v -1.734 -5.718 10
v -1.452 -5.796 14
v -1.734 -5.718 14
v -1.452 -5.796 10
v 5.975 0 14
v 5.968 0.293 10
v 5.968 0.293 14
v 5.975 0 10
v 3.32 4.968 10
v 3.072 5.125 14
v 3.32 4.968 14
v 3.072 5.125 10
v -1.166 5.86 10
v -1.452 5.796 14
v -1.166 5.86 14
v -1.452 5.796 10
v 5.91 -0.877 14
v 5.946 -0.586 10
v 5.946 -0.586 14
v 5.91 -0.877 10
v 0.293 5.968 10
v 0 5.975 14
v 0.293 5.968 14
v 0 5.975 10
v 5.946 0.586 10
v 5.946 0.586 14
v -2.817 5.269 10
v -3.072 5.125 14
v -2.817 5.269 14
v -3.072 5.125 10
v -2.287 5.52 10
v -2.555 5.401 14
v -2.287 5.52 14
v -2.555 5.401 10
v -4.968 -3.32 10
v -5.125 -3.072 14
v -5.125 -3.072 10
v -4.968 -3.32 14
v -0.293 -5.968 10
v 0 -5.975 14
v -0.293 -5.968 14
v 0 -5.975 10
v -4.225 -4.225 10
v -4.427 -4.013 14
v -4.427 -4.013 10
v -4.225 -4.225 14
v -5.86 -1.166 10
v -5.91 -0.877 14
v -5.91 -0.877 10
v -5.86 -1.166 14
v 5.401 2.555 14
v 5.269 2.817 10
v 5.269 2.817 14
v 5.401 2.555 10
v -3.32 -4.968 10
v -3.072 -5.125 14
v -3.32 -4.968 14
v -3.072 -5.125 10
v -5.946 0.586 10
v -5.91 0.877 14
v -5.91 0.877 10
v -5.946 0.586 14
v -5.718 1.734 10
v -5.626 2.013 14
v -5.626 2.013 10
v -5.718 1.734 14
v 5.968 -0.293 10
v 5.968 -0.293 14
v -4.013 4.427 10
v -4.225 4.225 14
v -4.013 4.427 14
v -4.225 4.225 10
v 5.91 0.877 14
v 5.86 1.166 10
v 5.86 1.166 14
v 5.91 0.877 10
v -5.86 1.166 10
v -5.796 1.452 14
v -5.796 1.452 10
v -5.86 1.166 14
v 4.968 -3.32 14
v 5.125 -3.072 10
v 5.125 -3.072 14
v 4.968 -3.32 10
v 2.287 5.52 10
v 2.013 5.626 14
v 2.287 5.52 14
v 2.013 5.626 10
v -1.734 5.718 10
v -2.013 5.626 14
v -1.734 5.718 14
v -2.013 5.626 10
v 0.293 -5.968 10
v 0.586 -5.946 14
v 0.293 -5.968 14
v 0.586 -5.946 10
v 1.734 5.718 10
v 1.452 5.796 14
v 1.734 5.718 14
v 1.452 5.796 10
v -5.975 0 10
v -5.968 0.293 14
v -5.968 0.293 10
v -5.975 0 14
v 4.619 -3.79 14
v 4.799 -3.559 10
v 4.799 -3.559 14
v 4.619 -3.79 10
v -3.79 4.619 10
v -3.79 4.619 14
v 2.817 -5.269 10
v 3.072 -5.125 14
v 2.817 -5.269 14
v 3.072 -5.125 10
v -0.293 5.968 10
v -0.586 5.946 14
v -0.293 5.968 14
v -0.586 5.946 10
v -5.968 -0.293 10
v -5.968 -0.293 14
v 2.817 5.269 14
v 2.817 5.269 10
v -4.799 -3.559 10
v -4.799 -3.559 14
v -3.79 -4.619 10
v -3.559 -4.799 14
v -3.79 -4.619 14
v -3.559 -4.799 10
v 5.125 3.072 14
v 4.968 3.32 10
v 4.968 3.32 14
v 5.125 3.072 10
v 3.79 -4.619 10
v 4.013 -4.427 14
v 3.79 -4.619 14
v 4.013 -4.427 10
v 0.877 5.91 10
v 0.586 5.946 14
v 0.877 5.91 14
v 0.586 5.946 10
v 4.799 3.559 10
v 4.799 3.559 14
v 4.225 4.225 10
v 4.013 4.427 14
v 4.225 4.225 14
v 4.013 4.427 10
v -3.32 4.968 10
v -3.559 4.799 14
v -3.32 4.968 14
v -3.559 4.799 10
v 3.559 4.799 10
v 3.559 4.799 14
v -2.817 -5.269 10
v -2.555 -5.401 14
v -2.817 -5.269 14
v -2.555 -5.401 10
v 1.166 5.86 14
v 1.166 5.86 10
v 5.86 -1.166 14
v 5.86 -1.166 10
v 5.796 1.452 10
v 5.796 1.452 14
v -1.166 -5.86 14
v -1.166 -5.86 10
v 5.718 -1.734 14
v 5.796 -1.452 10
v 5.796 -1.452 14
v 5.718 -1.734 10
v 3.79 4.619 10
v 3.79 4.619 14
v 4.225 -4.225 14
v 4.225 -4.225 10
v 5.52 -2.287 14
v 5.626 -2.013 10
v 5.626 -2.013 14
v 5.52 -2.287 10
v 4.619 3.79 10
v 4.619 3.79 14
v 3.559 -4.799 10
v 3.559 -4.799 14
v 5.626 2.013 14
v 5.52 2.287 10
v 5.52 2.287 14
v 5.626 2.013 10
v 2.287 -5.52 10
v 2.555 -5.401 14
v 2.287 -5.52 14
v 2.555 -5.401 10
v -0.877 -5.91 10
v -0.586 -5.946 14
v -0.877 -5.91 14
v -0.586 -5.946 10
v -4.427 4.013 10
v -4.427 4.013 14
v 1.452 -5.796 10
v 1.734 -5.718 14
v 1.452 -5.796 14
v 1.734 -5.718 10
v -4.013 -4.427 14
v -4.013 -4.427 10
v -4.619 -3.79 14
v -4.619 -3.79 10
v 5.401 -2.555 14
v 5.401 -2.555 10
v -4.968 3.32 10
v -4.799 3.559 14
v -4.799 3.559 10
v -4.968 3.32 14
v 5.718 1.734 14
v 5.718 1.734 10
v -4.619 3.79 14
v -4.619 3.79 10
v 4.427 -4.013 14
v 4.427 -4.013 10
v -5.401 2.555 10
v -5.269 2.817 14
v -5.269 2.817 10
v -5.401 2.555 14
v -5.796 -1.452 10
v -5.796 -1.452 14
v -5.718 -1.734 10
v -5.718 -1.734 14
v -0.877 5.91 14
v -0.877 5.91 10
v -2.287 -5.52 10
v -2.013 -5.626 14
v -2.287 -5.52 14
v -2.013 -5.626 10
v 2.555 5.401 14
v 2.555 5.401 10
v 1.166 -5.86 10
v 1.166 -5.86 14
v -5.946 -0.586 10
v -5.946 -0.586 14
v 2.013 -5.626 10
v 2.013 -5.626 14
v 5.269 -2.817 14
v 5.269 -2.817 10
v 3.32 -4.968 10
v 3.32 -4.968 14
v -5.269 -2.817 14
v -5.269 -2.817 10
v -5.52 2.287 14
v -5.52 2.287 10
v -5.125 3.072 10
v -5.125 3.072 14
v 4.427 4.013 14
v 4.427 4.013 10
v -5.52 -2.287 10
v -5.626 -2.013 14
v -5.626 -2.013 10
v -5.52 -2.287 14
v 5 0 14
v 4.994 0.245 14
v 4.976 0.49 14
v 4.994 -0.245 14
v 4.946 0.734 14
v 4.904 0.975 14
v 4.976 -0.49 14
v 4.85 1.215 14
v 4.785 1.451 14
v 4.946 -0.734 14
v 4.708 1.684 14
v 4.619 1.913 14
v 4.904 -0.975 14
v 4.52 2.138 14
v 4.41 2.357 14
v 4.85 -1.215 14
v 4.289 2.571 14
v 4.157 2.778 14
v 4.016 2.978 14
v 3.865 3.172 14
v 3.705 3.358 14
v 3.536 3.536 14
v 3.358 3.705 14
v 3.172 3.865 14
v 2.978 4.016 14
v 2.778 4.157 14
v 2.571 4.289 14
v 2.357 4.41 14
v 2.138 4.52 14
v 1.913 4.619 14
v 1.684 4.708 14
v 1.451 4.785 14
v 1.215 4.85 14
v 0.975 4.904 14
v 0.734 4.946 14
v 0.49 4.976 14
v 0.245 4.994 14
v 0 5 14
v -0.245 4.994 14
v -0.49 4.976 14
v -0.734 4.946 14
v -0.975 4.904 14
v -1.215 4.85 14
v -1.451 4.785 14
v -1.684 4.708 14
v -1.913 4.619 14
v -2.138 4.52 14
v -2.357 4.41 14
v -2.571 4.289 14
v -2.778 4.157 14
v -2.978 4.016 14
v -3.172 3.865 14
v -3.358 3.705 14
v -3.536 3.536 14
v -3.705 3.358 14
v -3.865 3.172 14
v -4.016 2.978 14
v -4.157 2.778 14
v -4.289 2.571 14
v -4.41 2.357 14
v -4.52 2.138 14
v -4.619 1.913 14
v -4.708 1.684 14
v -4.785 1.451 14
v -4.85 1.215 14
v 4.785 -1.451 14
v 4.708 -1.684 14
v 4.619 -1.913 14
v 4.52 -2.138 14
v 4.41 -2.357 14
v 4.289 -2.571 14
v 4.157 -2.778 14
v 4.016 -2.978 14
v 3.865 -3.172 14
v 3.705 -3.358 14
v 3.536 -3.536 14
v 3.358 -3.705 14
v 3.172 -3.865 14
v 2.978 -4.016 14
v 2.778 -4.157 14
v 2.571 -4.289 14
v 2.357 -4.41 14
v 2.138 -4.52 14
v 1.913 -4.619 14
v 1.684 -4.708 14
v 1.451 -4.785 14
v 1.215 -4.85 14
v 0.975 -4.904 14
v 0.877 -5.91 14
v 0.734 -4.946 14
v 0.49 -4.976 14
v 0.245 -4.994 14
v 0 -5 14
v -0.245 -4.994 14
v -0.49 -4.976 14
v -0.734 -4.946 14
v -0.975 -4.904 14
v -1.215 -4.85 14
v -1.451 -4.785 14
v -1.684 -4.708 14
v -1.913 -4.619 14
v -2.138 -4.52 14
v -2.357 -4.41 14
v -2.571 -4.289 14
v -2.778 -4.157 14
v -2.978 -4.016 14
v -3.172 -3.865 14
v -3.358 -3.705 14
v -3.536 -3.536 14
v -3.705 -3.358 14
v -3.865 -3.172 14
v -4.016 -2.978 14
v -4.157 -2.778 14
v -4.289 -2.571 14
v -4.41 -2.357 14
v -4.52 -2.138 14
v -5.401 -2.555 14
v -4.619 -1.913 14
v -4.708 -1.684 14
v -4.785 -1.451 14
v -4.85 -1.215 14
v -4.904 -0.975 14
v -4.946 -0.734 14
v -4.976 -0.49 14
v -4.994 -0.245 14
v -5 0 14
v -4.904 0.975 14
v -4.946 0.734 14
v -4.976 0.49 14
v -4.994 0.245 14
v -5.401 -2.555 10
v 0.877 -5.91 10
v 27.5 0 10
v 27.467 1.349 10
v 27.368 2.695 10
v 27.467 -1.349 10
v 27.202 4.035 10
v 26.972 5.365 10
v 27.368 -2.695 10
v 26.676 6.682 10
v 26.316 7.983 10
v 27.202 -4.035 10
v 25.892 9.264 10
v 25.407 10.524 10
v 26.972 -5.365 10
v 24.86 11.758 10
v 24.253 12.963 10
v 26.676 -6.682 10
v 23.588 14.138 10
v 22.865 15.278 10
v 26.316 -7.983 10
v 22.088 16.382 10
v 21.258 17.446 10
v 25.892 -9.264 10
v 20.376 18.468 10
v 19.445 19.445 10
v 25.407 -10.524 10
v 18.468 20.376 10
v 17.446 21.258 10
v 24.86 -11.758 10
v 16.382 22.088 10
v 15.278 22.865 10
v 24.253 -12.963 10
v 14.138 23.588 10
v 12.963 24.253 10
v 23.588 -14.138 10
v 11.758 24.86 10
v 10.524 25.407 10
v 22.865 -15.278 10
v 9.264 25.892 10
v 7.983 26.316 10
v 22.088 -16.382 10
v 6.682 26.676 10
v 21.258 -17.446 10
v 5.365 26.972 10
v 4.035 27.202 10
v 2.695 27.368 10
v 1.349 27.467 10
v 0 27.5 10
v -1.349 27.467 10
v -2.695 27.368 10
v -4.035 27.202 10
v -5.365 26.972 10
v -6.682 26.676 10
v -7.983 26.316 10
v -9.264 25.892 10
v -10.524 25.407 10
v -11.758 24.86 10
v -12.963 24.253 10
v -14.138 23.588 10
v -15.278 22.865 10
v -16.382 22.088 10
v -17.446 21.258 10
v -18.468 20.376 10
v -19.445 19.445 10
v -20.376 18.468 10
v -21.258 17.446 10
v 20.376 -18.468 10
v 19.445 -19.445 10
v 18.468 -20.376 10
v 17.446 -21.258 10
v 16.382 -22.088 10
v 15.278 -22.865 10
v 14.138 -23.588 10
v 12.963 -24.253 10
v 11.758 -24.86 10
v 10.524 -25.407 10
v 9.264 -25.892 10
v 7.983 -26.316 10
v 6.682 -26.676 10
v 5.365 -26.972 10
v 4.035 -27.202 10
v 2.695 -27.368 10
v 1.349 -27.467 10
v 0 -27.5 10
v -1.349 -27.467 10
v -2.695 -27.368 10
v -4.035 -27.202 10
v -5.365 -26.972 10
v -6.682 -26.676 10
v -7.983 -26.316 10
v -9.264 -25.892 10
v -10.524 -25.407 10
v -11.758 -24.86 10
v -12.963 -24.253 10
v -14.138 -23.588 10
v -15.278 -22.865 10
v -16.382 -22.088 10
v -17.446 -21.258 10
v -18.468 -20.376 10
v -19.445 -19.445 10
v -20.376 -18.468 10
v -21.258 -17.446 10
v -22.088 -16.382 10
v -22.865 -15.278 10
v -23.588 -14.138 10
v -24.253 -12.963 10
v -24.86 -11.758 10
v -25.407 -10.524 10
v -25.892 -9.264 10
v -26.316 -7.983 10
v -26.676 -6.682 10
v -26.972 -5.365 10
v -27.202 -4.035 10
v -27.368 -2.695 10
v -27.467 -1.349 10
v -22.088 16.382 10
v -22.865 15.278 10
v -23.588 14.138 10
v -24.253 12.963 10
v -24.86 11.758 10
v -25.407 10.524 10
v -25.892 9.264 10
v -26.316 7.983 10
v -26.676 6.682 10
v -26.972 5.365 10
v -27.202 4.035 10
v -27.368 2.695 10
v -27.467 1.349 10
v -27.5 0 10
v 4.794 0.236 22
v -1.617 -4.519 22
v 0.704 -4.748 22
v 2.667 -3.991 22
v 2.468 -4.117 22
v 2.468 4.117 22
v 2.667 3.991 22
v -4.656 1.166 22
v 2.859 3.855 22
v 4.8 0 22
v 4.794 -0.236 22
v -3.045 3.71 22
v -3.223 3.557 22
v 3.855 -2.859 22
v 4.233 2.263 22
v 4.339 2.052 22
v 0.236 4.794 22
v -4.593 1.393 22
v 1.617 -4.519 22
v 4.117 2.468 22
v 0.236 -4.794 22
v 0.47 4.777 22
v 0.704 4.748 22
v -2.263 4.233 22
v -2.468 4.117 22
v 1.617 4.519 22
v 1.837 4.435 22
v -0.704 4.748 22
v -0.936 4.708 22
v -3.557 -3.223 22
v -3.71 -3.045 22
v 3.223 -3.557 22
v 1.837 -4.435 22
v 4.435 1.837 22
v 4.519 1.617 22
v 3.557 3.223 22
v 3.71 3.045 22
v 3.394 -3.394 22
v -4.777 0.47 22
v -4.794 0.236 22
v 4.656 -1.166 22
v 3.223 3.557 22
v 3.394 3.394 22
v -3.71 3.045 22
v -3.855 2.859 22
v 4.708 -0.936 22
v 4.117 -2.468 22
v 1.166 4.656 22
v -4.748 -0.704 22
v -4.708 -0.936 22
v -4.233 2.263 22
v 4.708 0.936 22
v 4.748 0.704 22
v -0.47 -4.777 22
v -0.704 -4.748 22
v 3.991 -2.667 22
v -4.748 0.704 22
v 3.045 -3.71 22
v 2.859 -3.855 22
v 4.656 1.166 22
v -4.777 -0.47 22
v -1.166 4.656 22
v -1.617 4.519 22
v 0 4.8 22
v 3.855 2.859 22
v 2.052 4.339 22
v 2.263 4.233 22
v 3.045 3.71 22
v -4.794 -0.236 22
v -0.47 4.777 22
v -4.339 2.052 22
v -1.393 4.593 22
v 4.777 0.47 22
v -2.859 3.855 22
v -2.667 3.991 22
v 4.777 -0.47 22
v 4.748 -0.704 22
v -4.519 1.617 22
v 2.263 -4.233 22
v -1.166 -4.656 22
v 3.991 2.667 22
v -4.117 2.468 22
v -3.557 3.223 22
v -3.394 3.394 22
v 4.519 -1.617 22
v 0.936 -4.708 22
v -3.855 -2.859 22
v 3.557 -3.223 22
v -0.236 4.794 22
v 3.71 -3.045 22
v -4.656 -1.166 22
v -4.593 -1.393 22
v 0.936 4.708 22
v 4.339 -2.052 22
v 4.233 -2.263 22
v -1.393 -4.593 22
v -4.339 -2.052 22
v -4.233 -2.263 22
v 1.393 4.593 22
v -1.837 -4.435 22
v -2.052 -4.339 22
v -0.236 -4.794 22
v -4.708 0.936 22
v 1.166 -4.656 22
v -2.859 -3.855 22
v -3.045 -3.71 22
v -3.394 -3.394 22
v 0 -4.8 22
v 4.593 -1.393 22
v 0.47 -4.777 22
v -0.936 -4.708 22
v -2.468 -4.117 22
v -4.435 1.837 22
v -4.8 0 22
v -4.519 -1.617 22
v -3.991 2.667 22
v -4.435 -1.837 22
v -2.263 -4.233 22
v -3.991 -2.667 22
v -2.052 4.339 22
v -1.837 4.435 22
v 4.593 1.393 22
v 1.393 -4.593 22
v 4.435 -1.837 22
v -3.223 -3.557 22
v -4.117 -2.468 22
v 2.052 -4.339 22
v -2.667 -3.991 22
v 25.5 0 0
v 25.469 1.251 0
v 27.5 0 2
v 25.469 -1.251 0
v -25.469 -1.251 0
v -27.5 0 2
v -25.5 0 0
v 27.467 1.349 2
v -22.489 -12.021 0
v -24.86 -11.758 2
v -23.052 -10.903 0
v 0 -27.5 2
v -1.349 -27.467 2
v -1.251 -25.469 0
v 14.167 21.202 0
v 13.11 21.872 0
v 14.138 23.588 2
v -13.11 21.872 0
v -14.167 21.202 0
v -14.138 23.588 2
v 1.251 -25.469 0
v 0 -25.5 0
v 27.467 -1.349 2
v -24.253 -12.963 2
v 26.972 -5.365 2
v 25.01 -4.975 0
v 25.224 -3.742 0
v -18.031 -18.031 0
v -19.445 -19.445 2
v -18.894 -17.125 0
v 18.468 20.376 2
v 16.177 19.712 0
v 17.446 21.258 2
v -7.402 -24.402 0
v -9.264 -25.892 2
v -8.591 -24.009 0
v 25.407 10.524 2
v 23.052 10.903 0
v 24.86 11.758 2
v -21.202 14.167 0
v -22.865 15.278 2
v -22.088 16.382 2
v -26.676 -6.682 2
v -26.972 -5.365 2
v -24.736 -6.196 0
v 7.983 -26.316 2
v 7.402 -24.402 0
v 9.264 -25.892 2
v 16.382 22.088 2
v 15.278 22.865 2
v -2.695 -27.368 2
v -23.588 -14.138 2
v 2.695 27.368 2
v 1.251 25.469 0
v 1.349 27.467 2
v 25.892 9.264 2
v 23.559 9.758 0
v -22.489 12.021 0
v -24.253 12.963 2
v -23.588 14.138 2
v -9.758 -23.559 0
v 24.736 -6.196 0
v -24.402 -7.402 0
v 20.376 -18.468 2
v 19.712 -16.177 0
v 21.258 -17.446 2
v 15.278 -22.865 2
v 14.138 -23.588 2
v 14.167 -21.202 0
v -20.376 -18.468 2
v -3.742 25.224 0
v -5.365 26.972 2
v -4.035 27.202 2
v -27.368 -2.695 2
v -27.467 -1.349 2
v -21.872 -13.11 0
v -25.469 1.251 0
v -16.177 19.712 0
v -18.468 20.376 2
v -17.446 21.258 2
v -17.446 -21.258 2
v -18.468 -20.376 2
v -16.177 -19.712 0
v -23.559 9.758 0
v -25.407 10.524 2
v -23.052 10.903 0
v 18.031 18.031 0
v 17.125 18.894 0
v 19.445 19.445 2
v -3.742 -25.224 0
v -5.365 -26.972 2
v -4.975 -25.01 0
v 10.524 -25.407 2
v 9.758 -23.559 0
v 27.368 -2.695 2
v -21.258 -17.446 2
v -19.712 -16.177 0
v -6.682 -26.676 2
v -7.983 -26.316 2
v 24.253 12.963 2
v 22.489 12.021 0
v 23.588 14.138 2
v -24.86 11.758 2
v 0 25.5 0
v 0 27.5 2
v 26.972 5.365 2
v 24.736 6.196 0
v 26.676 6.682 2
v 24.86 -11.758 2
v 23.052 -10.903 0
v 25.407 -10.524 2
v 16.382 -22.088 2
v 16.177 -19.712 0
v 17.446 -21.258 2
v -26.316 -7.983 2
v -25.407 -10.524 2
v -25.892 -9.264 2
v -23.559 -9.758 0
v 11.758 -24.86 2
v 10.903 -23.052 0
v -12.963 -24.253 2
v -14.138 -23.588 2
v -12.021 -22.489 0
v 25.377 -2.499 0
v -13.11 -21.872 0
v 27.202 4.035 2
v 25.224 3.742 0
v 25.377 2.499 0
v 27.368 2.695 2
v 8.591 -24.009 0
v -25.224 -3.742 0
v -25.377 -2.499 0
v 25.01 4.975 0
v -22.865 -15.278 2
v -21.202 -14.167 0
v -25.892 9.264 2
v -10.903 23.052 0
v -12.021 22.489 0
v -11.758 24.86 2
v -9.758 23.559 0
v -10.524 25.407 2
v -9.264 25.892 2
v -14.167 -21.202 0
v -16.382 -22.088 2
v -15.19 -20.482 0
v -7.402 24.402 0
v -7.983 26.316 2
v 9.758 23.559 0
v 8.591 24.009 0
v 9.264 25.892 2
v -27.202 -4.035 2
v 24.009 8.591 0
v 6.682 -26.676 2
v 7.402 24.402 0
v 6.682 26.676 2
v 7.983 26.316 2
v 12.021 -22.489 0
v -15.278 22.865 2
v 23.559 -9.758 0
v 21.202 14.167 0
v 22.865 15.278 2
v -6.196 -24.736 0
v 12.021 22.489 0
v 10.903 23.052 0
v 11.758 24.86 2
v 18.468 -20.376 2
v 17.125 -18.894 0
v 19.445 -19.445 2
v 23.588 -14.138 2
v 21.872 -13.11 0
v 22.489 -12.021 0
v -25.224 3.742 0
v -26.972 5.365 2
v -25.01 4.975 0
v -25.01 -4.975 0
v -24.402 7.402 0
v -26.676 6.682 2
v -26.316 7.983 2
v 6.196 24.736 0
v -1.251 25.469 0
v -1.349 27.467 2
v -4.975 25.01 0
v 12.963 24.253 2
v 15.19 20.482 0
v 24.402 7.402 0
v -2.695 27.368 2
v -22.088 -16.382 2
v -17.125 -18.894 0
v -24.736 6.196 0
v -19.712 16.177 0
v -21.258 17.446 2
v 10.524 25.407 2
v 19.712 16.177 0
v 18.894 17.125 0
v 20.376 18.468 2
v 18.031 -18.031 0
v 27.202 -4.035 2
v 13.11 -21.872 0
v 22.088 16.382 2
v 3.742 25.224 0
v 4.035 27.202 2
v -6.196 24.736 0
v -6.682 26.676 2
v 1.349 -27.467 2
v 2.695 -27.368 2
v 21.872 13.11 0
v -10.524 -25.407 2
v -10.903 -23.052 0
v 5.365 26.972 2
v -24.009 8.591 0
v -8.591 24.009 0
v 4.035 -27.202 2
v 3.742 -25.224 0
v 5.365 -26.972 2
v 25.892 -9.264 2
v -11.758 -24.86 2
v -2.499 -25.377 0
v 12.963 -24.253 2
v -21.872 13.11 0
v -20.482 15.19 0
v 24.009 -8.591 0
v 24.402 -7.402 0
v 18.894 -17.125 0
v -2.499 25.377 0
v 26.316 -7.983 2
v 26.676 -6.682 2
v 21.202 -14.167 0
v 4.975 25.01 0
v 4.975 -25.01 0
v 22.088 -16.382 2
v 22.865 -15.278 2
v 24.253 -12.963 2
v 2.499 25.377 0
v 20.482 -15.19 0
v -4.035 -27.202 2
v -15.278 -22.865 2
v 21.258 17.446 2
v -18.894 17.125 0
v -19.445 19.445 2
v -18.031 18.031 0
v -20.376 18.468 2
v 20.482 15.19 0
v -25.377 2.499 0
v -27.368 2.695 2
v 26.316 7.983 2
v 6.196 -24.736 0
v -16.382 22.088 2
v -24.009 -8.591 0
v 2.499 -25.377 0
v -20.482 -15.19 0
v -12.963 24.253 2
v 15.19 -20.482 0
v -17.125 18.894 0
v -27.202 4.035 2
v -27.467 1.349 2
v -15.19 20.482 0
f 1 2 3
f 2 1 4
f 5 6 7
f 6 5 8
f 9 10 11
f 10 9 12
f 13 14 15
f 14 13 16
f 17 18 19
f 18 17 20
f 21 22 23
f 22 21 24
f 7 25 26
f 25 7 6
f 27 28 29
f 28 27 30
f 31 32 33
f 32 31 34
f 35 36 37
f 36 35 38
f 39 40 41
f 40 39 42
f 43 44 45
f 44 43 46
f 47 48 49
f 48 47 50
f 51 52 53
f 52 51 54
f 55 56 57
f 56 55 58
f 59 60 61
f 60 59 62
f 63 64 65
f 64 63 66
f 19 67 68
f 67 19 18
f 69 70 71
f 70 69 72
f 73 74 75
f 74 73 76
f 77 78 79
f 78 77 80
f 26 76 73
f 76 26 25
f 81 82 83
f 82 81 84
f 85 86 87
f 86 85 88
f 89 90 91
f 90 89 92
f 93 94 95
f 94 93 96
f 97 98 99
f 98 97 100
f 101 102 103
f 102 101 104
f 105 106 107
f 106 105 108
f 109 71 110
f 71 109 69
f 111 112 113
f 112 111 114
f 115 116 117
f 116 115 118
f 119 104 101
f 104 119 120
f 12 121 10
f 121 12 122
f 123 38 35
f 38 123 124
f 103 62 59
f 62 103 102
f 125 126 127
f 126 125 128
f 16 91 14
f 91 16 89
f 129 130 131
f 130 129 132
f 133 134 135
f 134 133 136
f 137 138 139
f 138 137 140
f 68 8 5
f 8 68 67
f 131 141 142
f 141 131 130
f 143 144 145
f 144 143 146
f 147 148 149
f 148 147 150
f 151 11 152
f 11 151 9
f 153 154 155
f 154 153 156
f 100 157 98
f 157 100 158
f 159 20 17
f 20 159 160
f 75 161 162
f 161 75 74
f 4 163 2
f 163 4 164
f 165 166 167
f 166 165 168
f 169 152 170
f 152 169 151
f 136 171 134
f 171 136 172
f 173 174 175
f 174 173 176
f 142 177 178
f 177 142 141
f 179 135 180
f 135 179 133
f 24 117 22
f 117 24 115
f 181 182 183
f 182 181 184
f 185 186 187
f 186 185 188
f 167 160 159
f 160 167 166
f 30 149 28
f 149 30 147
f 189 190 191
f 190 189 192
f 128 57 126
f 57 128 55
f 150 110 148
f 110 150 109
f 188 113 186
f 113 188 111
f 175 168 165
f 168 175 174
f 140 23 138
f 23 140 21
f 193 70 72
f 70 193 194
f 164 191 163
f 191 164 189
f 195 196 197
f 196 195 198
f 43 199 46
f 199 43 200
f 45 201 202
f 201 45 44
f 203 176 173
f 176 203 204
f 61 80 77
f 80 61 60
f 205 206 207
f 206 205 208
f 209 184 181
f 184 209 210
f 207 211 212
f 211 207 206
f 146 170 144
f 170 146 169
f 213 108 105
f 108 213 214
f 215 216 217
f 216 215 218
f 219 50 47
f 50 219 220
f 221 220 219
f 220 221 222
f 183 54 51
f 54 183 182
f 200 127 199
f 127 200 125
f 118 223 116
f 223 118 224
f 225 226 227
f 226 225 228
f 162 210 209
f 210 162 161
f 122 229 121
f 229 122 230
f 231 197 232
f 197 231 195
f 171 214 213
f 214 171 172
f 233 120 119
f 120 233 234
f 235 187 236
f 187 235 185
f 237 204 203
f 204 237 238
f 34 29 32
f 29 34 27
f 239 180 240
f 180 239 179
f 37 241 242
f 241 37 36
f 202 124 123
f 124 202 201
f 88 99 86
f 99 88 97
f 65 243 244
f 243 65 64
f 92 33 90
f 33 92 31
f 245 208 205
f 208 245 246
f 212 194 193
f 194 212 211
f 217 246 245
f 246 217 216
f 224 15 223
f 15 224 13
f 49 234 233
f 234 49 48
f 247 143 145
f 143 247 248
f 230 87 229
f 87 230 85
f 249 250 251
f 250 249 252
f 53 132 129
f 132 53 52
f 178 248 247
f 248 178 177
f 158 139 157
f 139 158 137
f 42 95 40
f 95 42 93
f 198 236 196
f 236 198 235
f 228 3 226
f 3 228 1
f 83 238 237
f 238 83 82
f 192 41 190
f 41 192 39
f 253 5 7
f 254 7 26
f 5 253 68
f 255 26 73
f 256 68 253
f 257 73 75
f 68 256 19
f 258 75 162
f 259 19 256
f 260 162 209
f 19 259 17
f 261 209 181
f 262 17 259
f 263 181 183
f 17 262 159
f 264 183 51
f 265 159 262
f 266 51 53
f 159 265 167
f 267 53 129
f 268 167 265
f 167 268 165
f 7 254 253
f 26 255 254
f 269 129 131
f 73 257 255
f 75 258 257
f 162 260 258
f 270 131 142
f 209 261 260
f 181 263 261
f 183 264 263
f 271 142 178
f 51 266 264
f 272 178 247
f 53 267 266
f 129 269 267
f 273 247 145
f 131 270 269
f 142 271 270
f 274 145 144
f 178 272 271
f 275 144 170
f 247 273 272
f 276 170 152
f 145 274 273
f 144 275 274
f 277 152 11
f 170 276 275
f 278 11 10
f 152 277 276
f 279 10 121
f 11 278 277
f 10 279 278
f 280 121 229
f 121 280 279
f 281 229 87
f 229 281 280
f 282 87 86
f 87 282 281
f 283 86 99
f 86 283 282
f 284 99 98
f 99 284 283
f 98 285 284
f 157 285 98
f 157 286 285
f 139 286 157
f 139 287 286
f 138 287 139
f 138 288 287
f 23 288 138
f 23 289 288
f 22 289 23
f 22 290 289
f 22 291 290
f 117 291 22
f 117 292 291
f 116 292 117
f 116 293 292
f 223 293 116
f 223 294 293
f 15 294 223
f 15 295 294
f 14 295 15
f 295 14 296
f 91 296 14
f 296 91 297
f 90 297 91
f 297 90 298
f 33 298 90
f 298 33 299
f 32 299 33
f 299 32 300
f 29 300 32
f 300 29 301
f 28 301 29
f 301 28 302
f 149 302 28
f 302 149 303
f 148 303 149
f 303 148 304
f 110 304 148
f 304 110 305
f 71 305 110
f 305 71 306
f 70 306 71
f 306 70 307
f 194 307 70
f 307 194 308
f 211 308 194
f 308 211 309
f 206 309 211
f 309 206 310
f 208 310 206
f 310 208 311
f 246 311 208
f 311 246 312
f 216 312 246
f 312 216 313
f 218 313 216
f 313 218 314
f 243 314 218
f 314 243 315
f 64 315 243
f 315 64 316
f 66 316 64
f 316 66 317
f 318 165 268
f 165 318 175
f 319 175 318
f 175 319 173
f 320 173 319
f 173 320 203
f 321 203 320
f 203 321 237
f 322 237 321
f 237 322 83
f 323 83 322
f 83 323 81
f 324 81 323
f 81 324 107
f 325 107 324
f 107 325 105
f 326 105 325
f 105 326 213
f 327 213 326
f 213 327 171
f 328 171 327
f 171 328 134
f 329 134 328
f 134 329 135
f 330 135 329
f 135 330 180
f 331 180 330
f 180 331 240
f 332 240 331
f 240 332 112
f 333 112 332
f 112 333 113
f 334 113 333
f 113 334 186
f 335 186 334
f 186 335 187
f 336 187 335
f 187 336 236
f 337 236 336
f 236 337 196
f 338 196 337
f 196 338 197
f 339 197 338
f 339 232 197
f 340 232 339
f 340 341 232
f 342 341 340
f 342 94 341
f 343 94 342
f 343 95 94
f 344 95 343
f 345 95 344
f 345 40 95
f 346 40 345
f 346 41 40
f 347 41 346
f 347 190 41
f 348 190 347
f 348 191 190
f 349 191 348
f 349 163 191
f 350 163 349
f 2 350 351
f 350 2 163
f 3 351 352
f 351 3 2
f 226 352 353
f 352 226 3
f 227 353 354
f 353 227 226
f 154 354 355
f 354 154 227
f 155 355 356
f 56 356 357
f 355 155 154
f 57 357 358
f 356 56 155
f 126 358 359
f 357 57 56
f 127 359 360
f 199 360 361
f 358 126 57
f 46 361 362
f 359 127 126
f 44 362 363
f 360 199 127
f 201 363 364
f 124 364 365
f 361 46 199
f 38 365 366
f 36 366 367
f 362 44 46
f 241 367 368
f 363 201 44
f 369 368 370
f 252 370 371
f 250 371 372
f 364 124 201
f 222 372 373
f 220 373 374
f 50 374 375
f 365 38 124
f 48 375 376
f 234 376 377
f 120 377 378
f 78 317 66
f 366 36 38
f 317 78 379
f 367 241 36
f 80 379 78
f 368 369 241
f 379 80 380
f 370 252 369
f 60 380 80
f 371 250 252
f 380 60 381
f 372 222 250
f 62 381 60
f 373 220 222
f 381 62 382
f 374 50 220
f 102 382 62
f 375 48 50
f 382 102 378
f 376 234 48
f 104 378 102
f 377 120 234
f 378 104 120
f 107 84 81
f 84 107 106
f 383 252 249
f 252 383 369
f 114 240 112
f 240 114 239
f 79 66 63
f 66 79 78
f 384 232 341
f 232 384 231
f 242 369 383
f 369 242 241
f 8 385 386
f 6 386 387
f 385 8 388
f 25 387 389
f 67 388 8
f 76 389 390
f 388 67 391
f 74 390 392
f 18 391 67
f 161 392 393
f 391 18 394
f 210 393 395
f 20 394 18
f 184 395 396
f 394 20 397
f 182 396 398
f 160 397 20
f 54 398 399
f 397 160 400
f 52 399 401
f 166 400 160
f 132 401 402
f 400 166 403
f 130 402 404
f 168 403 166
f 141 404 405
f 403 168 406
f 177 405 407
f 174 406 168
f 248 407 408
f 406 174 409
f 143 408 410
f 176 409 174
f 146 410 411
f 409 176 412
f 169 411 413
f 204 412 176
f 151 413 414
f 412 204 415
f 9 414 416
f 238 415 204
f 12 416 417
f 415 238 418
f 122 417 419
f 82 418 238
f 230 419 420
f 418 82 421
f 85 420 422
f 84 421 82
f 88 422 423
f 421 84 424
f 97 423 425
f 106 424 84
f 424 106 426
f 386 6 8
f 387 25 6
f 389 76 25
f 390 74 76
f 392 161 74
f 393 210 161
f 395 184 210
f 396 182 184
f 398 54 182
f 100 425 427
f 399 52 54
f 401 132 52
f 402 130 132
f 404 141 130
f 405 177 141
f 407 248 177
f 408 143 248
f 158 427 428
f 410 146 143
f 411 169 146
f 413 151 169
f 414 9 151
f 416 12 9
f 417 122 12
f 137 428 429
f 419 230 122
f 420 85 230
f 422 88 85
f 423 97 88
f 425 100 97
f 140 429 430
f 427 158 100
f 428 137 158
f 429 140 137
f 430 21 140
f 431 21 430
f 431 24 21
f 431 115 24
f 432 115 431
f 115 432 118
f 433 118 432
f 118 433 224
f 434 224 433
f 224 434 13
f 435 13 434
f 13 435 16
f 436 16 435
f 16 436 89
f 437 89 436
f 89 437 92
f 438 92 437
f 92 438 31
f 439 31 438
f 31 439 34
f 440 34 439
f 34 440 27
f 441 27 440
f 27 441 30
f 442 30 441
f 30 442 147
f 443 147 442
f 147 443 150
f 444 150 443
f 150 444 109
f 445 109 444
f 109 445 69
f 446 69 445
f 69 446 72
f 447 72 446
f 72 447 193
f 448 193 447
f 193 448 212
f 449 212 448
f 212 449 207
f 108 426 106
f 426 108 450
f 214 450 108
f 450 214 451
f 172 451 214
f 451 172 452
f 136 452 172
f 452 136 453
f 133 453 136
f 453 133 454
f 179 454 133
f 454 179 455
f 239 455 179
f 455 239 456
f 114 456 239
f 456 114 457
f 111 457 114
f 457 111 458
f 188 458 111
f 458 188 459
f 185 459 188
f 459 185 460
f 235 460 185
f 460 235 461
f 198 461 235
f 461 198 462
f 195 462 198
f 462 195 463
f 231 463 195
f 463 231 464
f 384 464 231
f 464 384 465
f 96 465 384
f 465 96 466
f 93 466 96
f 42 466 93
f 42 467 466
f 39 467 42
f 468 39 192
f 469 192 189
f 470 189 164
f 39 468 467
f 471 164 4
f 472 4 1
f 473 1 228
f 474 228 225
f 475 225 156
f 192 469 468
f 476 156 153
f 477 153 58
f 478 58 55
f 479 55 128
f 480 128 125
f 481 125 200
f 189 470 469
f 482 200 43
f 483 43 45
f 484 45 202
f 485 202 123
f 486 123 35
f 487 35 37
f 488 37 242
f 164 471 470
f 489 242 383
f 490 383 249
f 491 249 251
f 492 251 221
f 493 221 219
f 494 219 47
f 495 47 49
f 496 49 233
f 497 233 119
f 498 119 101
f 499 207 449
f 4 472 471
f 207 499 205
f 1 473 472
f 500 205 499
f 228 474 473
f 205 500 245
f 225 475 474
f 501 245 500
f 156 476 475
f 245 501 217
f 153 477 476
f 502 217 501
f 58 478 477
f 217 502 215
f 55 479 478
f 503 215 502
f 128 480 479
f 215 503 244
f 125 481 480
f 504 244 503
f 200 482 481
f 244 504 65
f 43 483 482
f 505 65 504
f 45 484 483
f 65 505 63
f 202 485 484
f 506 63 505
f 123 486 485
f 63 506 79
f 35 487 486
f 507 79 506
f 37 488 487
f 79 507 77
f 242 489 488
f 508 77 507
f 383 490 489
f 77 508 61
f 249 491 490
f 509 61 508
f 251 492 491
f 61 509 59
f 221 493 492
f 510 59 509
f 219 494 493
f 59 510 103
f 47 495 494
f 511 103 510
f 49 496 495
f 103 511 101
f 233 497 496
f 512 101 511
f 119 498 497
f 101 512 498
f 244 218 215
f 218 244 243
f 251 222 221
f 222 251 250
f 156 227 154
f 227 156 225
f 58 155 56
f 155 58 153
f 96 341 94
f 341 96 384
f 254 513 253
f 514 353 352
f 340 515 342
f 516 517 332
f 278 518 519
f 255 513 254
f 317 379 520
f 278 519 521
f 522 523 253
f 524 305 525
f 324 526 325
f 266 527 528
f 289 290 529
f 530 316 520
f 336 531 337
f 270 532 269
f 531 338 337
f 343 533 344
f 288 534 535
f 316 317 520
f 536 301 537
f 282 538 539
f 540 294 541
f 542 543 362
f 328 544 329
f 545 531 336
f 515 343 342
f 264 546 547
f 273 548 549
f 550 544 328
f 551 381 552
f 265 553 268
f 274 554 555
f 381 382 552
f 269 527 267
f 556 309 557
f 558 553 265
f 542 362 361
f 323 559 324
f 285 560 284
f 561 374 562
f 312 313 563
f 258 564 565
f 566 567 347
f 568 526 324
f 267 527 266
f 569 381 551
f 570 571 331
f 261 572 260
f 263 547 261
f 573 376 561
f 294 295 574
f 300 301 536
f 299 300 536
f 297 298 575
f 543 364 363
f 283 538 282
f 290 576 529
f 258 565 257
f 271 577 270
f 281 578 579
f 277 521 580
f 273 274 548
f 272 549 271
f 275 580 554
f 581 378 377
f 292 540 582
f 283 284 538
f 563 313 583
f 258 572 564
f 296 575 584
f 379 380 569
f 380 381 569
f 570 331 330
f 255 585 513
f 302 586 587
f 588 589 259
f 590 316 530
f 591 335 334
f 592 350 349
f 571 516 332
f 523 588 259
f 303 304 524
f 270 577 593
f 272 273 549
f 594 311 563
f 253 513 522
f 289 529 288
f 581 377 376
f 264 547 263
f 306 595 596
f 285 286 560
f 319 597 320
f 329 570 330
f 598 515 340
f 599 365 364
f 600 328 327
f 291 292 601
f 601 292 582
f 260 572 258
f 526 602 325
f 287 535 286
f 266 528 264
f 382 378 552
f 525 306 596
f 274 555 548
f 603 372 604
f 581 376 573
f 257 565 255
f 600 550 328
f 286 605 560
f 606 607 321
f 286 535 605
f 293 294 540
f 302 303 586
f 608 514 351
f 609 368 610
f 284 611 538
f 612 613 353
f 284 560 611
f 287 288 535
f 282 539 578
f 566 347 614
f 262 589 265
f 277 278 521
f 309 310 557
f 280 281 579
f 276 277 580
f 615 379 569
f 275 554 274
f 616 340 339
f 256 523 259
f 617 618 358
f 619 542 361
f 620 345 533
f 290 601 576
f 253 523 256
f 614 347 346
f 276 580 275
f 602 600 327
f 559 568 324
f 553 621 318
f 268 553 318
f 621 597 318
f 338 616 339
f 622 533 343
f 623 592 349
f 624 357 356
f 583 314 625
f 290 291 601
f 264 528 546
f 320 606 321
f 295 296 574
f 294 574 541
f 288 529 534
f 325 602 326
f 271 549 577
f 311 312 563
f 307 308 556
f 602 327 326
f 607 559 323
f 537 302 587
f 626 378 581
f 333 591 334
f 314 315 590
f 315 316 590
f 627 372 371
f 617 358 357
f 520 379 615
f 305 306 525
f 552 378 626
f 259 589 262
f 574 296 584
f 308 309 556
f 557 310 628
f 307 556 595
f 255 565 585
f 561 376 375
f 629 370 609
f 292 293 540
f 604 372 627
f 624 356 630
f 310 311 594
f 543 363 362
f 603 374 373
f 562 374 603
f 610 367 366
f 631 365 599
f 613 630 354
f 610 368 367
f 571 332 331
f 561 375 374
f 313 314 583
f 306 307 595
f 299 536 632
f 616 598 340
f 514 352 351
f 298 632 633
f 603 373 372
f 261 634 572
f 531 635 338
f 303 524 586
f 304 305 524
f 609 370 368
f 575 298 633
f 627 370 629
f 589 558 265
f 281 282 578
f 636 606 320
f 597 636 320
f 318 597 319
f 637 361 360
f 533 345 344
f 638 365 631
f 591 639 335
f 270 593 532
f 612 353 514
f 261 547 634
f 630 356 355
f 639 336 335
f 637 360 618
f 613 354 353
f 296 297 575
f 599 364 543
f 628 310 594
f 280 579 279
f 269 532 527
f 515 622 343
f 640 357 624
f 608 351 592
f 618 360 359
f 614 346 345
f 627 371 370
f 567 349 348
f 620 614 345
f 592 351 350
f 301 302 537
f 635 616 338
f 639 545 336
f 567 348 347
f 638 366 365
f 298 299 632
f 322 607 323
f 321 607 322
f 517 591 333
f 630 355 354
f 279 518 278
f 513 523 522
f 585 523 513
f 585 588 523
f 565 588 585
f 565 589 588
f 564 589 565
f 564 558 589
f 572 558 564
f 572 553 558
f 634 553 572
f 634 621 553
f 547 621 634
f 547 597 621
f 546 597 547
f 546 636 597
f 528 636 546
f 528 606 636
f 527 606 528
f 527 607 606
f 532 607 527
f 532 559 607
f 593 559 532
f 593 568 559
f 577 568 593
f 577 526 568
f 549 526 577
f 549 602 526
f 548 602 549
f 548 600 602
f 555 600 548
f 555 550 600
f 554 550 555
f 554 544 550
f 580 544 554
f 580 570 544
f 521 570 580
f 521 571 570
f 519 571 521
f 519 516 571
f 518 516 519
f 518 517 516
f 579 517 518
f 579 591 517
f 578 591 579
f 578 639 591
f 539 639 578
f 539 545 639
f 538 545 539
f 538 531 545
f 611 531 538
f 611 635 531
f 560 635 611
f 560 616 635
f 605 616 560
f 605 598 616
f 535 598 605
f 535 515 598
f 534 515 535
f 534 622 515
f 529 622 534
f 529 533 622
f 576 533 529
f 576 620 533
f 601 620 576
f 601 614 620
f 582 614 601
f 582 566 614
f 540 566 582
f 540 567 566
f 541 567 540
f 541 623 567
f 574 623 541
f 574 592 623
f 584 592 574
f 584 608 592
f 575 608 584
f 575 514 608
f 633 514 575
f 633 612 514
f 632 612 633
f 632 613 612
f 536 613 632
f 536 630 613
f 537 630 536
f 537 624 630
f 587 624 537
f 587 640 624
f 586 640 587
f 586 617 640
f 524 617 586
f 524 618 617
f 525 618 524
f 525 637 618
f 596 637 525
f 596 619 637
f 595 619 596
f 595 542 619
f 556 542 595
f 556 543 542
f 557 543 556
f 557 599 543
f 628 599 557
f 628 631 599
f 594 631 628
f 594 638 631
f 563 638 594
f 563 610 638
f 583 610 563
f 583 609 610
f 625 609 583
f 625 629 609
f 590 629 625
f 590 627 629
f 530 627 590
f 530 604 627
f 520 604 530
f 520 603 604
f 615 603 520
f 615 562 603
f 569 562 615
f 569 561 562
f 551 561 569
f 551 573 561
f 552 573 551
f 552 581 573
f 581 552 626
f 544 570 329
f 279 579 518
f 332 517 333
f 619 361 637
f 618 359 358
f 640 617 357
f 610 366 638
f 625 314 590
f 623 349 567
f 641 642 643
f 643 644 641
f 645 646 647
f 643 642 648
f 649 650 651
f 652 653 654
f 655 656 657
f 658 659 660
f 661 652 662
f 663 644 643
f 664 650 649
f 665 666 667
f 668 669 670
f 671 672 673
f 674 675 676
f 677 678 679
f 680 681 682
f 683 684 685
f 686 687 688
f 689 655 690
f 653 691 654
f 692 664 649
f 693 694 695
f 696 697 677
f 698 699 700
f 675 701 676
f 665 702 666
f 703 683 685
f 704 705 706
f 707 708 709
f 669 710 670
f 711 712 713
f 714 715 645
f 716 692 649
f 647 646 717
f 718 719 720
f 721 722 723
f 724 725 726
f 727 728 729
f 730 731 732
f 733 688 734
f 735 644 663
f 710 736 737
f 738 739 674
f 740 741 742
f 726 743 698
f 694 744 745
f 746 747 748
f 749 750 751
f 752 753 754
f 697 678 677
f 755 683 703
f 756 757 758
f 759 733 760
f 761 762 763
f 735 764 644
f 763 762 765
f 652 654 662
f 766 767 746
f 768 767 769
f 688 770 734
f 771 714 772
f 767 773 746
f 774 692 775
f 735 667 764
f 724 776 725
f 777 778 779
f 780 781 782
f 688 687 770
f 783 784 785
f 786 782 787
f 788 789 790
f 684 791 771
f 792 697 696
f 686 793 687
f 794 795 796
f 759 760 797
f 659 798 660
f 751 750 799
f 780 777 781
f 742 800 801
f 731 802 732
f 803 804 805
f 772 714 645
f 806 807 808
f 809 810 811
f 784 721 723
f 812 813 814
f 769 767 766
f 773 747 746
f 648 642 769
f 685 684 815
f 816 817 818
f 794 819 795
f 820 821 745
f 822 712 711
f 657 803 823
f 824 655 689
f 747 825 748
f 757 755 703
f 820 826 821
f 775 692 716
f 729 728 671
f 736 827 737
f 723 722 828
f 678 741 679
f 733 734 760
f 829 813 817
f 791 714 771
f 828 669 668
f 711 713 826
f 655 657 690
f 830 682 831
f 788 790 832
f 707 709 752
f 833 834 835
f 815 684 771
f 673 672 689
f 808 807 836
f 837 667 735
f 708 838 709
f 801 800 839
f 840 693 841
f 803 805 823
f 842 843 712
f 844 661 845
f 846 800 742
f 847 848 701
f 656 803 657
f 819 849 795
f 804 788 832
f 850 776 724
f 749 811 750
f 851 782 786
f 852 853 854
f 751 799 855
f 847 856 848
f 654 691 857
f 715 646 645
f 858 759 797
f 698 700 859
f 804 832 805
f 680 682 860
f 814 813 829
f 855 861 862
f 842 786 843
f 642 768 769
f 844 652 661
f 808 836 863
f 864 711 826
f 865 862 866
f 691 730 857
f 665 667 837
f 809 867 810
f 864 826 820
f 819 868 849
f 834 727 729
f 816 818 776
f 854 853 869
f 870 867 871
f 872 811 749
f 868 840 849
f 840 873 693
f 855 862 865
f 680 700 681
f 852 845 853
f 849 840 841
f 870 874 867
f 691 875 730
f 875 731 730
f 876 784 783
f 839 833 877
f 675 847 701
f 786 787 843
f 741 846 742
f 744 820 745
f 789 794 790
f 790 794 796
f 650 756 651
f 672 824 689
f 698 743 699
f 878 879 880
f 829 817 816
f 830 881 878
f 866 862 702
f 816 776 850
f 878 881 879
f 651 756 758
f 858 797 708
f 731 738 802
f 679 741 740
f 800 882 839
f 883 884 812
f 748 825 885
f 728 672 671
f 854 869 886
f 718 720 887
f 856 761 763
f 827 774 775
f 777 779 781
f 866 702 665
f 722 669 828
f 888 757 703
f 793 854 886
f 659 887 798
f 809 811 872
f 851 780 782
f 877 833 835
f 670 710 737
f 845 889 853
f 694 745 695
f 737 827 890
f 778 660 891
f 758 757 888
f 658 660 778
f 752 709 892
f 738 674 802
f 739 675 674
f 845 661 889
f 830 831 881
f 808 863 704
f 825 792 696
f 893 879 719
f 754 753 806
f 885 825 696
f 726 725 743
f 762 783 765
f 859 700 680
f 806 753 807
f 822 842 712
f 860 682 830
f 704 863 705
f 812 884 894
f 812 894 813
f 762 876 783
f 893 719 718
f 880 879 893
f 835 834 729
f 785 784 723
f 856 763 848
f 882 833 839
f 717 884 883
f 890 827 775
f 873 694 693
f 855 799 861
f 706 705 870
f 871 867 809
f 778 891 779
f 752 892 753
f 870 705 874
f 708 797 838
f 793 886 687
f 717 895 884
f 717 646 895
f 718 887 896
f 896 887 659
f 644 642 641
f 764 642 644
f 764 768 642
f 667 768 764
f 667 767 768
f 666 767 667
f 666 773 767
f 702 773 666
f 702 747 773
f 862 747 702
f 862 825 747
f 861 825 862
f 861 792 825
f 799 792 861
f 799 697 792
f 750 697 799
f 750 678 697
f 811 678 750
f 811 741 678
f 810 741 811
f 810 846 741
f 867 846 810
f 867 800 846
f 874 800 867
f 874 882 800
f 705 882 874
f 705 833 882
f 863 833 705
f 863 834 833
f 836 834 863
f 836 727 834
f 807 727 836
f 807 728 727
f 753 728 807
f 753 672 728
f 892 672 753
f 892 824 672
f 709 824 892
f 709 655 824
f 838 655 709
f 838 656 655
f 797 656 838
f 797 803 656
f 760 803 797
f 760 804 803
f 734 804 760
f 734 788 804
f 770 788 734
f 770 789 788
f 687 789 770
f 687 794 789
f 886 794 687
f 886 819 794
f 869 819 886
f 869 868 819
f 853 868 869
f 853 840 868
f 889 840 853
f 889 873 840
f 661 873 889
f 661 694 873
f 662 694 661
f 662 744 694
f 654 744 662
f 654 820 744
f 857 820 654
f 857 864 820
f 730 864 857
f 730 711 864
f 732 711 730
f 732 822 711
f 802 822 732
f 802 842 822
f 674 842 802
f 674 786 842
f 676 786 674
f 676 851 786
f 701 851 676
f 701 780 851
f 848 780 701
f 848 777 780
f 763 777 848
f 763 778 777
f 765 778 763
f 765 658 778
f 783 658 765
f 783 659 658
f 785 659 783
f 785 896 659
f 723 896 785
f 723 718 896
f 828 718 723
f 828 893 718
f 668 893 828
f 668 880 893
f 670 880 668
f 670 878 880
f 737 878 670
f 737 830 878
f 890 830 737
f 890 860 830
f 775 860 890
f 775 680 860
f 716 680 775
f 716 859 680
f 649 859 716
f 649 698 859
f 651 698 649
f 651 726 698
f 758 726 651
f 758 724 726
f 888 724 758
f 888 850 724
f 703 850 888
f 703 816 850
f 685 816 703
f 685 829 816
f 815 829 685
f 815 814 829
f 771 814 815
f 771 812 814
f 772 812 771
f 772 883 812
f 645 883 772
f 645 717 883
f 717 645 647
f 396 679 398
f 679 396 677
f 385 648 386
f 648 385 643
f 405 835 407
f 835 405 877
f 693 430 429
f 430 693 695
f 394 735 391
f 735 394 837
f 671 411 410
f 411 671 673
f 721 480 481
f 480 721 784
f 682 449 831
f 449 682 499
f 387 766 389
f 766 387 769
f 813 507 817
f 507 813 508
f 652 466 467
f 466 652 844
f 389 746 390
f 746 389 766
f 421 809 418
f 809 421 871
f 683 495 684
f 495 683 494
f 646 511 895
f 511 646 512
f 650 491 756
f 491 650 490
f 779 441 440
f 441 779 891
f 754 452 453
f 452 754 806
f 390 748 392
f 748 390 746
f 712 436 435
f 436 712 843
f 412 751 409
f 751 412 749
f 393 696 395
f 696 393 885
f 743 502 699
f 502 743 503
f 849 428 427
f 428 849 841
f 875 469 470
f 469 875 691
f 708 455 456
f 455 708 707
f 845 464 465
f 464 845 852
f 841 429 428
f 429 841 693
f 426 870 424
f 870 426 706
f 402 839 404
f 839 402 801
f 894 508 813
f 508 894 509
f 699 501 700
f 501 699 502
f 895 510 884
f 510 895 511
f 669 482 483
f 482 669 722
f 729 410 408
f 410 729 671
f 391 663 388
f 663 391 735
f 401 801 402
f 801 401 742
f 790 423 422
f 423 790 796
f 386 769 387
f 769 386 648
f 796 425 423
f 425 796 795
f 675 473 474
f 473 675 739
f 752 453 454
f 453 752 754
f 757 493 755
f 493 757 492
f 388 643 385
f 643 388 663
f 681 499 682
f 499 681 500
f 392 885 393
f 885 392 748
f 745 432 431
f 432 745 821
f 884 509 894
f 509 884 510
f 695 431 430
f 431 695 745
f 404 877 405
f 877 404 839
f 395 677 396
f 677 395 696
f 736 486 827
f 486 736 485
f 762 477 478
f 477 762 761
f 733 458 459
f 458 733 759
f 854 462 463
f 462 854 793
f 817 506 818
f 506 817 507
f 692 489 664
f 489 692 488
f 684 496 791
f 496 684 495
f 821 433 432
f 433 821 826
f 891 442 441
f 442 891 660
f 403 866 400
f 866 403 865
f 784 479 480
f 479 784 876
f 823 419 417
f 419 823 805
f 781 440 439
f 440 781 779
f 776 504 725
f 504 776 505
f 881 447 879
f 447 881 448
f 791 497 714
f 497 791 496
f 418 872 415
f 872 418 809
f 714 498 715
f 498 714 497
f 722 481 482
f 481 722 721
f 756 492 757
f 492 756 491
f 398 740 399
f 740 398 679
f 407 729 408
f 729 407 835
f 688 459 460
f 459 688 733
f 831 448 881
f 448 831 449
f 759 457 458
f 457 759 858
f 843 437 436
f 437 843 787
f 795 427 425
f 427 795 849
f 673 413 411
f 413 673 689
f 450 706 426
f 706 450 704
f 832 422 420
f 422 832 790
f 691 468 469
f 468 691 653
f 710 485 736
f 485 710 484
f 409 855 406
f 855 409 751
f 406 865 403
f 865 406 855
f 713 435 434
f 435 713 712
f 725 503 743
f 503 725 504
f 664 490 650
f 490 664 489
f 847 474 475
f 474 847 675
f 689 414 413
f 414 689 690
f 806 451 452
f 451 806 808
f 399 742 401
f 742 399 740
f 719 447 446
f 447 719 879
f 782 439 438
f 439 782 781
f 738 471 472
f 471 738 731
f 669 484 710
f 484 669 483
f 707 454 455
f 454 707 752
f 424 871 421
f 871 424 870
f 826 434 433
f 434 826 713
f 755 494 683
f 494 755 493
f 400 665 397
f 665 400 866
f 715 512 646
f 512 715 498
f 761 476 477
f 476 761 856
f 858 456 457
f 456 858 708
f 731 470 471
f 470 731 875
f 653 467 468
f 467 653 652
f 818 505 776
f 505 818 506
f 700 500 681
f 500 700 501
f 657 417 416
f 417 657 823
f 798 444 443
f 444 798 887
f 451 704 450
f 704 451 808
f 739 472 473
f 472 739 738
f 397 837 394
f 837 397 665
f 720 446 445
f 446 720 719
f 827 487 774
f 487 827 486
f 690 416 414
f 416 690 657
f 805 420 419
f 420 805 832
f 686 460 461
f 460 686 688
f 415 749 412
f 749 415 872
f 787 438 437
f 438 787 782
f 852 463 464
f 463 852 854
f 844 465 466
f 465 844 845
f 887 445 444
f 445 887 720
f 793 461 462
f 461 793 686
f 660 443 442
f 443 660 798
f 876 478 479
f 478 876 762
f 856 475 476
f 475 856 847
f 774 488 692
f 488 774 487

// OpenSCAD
// file: common.scad
// Model by Isaac Foraker
//
// Released under Creative Commons Attribution 4.0 International (CC BY 4.0)
// https://creativecommons.org/licenses/by/4.0/

$fn = 128;

// Wheel info
wheel_width = 4;
wheel_rad = 5;
wheel_hole_rad = 2;

// Track info
track_wall_thickness = 2;
track_wall_height = 5;
track_width = wheel_width + 0.5; // Need enough room for the wheel to fit in the arc of the circle
track_rad = 70;

// Simple ring creator.  `rad` is the inside radius of the ring.
module ring(rad, thickness, height) {
    rotate_extrude(convexity=10) translate([rad,0,0]) square([thickness,height]);
}
// main file
// Model by Isaac Foraker
//
// Released under Creative Commons Attribution 4.0 International (CC BY 4.0)
// https://creativecommons.org/licenses/by/4.0/

// Spindle to fit a Polymaker 5kg spool

include <common.scad>

h = track_wall_thickness+2;
w = 55;
r = w/2;

cylinder(r1=r-2,r2=r,h=2);
translate([0,0,2]) cylinder(r=r, h=8);
translate([0,0,10]) {
    cylinder(r=5.975, h=h);
    translate([0,0,h])
        cylinder(r1=5, r2=4.8, h = track_wall_thickness+6);
}
